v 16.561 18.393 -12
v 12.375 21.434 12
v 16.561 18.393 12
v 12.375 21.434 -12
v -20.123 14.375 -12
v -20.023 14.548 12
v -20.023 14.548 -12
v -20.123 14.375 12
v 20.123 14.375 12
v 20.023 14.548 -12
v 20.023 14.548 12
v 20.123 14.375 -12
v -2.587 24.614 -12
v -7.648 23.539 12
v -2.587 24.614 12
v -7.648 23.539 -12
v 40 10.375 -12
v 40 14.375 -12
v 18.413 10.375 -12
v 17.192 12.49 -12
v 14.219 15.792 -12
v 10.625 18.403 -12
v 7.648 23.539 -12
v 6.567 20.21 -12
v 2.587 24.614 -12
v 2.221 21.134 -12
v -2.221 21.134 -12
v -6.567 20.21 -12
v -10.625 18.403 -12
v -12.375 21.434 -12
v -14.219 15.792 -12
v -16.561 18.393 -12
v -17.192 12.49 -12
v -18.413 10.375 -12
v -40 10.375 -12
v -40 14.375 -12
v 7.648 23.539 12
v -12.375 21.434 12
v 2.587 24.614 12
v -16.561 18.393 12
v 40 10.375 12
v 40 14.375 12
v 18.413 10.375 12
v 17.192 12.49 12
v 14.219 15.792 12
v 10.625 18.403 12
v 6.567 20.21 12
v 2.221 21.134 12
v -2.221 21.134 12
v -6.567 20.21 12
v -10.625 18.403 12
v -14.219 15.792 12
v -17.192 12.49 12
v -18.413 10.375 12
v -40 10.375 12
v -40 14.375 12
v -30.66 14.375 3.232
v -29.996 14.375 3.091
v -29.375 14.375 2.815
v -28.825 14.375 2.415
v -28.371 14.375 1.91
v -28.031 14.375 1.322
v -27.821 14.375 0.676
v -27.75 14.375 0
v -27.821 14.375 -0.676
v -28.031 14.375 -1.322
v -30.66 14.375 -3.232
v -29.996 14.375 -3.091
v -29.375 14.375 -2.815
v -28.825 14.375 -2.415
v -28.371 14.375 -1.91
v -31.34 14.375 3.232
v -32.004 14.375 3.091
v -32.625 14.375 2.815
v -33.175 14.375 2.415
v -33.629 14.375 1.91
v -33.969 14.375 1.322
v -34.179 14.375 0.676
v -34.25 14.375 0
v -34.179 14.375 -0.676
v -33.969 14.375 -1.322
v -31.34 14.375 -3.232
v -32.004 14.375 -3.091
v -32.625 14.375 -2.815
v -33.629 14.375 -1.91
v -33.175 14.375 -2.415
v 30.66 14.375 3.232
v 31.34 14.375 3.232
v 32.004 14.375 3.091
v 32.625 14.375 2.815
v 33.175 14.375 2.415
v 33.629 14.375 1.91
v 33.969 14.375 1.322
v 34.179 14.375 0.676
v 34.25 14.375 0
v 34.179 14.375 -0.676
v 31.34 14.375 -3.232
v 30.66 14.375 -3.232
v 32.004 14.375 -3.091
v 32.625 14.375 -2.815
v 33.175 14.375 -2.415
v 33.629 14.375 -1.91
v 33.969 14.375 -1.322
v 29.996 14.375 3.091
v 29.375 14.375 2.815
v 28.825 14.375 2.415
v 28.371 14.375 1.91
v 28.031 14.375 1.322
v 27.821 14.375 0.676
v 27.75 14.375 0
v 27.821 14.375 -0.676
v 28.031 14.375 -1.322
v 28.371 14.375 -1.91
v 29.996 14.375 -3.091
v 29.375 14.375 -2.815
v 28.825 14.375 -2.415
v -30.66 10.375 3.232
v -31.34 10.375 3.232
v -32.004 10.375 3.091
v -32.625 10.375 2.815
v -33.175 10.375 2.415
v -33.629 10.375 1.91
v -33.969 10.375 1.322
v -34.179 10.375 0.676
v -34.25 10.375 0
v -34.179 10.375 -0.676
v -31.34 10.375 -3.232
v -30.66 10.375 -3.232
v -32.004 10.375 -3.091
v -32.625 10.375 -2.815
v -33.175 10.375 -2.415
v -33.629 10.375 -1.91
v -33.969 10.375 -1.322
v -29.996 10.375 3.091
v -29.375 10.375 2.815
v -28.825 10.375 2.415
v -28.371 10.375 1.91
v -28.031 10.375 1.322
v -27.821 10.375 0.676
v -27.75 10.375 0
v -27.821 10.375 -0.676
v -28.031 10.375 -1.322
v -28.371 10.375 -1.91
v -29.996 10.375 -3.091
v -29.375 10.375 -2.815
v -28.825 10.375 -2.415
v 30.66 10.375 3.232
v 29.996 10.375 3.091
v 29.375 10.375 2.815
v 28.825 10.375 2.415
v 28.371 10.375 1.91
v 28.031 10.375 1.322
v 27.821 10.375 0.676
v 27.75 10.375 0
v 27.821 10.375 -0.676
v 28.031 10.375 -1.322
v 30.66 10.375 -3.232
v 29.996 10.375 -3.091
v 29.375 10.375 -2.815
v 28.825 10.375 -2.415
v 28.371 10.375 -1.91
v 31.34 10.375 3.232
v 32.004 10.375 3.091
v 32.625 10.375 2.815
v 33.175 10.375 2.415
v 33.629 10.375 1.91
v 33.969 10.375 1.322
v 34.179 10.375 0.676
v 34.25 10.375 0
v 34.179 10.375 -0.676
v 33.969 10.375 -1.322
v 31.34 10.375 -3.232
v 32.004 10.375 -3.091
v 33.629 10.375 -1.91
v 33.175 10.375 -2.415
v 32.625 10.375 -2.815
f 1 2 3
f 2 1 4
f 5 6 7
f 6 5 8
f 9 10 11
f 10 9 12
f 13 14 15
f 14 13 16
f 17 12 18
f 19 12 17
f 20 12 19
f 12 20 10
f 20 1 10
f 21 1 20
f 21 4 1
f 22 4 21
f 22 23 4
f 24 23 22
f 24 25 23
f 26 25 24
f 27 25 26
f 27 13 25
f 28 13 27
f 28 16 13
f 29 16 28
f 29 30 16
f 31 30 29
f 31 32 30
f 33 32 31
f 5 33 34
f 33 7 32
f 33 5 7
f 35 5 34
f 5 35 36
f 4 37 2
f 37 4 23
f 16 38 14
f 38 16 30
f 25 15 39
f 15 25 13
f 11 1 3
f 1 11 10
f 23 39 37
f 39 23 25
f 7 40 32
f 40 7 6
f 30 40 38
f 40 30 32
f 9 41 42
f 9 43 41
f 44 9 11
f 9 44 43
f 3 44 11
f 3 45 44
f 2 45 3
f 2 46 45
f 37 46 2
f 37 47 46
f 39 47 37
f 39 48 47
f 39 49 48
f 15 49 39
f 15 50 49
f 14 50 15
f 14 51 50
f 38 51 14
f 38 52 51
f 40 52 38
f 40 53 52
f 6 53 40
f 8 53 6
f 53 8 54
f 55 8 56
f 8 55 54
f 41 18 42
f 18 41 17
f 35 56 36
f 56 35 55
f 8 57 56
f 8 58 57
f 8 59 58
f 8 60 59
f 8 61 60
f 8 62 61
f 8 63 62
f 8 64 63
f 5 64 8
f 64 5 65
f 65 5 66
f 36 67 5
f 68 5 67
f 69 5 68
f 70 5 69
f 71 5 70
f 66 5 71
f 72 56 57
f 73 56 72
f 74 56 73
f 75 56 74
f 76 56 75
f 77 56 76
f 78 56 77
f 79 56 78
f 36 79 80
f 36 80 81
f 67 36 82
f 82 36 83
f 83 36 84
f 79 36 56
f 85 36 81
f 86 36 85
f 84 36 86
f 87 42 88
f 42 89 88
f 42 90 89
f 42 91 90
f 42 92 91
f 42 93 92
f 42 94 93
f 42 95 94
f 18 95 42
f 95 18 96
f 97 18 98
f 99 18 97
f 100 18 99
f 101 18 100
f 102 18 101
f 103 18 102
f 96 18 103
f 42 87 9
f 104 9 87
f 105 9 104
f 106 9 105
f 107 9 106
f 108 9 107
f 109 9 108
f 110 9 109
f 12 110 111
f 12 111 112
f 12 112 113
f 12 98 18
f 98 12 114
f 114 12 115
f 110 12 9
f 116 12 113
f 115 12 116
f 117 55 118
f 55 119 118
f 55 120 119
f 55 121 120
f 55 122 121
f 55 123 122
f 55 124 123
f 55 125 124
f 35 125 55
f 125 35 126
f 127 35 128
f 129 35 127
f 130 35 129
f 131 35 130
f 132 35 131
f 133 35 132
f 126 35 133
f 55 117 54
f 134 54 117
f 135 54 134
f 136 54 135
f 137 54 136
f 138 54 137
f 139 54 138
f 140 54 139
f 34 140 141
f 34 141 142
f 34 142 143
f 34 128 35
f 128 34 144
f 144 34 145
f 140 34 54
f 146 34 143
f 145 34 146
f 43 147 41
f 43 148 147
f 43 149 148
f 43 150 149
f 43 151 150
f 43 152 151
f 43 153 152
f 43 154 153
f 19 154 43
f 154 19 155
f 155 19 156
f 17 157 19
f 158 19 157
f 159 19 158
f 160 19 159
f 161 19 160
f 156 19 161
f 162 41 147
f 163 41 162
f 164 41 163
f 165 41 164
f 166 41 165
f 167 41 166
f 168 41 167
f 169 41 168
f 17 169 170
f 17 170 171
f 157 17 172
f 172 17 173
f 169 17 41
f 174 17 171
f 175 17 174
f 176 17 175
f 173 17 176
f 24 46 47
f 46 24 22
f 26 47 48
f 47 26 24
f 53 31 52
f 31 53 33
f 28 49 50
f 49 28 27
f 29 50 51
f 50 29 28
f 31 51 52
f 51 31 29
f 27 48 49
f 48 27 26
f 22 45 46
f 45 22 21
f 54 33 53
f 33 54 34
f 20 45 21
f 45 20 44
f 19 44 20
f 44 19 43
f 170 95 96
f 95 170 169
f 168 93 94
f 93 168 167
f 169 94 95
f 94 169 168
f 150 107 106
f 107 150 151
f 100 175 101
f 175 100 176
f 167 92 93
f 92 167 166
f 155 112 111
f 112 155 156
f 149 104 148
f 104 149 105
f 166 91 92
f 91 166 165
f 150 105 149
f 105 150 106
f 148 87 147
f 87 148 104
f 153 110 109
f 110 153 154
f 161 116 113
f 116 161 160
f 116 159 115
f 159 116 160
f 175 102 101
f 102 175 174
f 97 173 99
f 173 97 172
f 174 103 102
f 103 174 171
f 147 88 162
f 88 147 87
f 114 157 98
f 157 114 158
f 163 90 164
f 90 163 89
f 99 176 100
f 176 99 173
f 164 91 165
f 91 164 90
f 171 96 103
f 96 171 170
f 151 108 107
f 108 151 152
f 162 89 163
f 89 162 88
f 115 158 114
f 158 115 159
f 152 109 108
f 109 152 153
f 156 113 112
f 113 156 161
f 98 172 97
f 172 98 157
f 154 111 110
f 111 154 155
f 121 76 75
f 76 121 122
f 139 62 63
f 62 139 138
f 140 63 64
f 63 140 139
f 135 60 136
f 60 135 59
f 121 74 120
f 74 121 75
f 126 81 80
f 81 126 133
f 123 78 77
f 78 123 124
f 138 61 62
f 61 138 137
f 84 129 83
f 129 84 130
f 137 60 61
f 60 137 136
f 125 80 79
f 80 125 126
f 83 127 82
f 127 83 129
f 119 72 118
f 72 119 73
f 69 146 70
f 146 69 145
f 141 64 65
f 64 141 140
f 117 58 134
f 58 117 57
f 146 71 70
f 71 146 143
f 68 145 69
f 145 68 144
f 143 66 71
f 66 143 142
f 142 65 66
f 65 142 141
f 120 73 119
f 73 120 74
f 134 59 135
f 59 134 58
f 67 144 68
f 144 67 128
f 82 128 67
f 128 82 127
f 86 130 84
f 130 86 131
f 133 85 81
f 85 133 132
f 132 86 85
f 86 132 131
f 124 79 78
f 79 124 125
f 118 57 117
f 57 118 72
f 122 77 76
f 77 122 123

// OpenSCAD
//Infant-breath-mechanical-simulator
//https://github.com/arisberd/Infant-breath-mechanical-simulator
//version 0.2
//GNU GPL v3

//This printed piece graps the syringe-piston 
//At least 2 pieces need to stabilise syringe


//Data
d_emb=44+2; //syringe diameter
th_1 = 3.5; //thickness of the circular piece
length=80;//total length
th_2 = 4; //thickness of the cantilever
//off = 11; //μετατόπιση "offset" προβόλου
phi = 30; //degrees of cantilever displacement
bolt_distance = 62; //distance between the two bolts
bolt_d = 6.5; //diameter of the bolts
width = 24; //width of the piece

$fn=30;
//Σύμφωνα με τα άλλα μοντέλα, οι τρύπες αποτελούν ένα τετράγωνο 28Χ62 (τα κέντρα τους). Βρίσκονται σε ένα κουτί 17,5Χ48Χ80

difference () {
    union () {
        cylinder (d=d_emb+th_1, h=width, center =true);
        off = sin(phi) * (d_emb+th_1)/2;
        translate([0,off,0]) cube ([length, th_2, width], center=true);
        
    }
    #cylinder (d=d_emb-th_1, h=width*4, center=true);
    //first hole
    #translate ([bolt_distance/2,0,0]) rotate ([90,0,0]) cylinder (h=d_emb+th_1, d=bolt_d,center=true);
    //second hole
    #translate ([-bolt_distance/2,0,0]) rotate ([90,0,0]) cylinder (h=d_emb+th_1, d=bolt_d,center=true);
    off = sin(phi) * (d_emb+th_1)/2;
    translate([-length/2,-d_emb-th_1-th_2/2,-width/2]) cube([length,off+d_emb+th_1,width]);
}
